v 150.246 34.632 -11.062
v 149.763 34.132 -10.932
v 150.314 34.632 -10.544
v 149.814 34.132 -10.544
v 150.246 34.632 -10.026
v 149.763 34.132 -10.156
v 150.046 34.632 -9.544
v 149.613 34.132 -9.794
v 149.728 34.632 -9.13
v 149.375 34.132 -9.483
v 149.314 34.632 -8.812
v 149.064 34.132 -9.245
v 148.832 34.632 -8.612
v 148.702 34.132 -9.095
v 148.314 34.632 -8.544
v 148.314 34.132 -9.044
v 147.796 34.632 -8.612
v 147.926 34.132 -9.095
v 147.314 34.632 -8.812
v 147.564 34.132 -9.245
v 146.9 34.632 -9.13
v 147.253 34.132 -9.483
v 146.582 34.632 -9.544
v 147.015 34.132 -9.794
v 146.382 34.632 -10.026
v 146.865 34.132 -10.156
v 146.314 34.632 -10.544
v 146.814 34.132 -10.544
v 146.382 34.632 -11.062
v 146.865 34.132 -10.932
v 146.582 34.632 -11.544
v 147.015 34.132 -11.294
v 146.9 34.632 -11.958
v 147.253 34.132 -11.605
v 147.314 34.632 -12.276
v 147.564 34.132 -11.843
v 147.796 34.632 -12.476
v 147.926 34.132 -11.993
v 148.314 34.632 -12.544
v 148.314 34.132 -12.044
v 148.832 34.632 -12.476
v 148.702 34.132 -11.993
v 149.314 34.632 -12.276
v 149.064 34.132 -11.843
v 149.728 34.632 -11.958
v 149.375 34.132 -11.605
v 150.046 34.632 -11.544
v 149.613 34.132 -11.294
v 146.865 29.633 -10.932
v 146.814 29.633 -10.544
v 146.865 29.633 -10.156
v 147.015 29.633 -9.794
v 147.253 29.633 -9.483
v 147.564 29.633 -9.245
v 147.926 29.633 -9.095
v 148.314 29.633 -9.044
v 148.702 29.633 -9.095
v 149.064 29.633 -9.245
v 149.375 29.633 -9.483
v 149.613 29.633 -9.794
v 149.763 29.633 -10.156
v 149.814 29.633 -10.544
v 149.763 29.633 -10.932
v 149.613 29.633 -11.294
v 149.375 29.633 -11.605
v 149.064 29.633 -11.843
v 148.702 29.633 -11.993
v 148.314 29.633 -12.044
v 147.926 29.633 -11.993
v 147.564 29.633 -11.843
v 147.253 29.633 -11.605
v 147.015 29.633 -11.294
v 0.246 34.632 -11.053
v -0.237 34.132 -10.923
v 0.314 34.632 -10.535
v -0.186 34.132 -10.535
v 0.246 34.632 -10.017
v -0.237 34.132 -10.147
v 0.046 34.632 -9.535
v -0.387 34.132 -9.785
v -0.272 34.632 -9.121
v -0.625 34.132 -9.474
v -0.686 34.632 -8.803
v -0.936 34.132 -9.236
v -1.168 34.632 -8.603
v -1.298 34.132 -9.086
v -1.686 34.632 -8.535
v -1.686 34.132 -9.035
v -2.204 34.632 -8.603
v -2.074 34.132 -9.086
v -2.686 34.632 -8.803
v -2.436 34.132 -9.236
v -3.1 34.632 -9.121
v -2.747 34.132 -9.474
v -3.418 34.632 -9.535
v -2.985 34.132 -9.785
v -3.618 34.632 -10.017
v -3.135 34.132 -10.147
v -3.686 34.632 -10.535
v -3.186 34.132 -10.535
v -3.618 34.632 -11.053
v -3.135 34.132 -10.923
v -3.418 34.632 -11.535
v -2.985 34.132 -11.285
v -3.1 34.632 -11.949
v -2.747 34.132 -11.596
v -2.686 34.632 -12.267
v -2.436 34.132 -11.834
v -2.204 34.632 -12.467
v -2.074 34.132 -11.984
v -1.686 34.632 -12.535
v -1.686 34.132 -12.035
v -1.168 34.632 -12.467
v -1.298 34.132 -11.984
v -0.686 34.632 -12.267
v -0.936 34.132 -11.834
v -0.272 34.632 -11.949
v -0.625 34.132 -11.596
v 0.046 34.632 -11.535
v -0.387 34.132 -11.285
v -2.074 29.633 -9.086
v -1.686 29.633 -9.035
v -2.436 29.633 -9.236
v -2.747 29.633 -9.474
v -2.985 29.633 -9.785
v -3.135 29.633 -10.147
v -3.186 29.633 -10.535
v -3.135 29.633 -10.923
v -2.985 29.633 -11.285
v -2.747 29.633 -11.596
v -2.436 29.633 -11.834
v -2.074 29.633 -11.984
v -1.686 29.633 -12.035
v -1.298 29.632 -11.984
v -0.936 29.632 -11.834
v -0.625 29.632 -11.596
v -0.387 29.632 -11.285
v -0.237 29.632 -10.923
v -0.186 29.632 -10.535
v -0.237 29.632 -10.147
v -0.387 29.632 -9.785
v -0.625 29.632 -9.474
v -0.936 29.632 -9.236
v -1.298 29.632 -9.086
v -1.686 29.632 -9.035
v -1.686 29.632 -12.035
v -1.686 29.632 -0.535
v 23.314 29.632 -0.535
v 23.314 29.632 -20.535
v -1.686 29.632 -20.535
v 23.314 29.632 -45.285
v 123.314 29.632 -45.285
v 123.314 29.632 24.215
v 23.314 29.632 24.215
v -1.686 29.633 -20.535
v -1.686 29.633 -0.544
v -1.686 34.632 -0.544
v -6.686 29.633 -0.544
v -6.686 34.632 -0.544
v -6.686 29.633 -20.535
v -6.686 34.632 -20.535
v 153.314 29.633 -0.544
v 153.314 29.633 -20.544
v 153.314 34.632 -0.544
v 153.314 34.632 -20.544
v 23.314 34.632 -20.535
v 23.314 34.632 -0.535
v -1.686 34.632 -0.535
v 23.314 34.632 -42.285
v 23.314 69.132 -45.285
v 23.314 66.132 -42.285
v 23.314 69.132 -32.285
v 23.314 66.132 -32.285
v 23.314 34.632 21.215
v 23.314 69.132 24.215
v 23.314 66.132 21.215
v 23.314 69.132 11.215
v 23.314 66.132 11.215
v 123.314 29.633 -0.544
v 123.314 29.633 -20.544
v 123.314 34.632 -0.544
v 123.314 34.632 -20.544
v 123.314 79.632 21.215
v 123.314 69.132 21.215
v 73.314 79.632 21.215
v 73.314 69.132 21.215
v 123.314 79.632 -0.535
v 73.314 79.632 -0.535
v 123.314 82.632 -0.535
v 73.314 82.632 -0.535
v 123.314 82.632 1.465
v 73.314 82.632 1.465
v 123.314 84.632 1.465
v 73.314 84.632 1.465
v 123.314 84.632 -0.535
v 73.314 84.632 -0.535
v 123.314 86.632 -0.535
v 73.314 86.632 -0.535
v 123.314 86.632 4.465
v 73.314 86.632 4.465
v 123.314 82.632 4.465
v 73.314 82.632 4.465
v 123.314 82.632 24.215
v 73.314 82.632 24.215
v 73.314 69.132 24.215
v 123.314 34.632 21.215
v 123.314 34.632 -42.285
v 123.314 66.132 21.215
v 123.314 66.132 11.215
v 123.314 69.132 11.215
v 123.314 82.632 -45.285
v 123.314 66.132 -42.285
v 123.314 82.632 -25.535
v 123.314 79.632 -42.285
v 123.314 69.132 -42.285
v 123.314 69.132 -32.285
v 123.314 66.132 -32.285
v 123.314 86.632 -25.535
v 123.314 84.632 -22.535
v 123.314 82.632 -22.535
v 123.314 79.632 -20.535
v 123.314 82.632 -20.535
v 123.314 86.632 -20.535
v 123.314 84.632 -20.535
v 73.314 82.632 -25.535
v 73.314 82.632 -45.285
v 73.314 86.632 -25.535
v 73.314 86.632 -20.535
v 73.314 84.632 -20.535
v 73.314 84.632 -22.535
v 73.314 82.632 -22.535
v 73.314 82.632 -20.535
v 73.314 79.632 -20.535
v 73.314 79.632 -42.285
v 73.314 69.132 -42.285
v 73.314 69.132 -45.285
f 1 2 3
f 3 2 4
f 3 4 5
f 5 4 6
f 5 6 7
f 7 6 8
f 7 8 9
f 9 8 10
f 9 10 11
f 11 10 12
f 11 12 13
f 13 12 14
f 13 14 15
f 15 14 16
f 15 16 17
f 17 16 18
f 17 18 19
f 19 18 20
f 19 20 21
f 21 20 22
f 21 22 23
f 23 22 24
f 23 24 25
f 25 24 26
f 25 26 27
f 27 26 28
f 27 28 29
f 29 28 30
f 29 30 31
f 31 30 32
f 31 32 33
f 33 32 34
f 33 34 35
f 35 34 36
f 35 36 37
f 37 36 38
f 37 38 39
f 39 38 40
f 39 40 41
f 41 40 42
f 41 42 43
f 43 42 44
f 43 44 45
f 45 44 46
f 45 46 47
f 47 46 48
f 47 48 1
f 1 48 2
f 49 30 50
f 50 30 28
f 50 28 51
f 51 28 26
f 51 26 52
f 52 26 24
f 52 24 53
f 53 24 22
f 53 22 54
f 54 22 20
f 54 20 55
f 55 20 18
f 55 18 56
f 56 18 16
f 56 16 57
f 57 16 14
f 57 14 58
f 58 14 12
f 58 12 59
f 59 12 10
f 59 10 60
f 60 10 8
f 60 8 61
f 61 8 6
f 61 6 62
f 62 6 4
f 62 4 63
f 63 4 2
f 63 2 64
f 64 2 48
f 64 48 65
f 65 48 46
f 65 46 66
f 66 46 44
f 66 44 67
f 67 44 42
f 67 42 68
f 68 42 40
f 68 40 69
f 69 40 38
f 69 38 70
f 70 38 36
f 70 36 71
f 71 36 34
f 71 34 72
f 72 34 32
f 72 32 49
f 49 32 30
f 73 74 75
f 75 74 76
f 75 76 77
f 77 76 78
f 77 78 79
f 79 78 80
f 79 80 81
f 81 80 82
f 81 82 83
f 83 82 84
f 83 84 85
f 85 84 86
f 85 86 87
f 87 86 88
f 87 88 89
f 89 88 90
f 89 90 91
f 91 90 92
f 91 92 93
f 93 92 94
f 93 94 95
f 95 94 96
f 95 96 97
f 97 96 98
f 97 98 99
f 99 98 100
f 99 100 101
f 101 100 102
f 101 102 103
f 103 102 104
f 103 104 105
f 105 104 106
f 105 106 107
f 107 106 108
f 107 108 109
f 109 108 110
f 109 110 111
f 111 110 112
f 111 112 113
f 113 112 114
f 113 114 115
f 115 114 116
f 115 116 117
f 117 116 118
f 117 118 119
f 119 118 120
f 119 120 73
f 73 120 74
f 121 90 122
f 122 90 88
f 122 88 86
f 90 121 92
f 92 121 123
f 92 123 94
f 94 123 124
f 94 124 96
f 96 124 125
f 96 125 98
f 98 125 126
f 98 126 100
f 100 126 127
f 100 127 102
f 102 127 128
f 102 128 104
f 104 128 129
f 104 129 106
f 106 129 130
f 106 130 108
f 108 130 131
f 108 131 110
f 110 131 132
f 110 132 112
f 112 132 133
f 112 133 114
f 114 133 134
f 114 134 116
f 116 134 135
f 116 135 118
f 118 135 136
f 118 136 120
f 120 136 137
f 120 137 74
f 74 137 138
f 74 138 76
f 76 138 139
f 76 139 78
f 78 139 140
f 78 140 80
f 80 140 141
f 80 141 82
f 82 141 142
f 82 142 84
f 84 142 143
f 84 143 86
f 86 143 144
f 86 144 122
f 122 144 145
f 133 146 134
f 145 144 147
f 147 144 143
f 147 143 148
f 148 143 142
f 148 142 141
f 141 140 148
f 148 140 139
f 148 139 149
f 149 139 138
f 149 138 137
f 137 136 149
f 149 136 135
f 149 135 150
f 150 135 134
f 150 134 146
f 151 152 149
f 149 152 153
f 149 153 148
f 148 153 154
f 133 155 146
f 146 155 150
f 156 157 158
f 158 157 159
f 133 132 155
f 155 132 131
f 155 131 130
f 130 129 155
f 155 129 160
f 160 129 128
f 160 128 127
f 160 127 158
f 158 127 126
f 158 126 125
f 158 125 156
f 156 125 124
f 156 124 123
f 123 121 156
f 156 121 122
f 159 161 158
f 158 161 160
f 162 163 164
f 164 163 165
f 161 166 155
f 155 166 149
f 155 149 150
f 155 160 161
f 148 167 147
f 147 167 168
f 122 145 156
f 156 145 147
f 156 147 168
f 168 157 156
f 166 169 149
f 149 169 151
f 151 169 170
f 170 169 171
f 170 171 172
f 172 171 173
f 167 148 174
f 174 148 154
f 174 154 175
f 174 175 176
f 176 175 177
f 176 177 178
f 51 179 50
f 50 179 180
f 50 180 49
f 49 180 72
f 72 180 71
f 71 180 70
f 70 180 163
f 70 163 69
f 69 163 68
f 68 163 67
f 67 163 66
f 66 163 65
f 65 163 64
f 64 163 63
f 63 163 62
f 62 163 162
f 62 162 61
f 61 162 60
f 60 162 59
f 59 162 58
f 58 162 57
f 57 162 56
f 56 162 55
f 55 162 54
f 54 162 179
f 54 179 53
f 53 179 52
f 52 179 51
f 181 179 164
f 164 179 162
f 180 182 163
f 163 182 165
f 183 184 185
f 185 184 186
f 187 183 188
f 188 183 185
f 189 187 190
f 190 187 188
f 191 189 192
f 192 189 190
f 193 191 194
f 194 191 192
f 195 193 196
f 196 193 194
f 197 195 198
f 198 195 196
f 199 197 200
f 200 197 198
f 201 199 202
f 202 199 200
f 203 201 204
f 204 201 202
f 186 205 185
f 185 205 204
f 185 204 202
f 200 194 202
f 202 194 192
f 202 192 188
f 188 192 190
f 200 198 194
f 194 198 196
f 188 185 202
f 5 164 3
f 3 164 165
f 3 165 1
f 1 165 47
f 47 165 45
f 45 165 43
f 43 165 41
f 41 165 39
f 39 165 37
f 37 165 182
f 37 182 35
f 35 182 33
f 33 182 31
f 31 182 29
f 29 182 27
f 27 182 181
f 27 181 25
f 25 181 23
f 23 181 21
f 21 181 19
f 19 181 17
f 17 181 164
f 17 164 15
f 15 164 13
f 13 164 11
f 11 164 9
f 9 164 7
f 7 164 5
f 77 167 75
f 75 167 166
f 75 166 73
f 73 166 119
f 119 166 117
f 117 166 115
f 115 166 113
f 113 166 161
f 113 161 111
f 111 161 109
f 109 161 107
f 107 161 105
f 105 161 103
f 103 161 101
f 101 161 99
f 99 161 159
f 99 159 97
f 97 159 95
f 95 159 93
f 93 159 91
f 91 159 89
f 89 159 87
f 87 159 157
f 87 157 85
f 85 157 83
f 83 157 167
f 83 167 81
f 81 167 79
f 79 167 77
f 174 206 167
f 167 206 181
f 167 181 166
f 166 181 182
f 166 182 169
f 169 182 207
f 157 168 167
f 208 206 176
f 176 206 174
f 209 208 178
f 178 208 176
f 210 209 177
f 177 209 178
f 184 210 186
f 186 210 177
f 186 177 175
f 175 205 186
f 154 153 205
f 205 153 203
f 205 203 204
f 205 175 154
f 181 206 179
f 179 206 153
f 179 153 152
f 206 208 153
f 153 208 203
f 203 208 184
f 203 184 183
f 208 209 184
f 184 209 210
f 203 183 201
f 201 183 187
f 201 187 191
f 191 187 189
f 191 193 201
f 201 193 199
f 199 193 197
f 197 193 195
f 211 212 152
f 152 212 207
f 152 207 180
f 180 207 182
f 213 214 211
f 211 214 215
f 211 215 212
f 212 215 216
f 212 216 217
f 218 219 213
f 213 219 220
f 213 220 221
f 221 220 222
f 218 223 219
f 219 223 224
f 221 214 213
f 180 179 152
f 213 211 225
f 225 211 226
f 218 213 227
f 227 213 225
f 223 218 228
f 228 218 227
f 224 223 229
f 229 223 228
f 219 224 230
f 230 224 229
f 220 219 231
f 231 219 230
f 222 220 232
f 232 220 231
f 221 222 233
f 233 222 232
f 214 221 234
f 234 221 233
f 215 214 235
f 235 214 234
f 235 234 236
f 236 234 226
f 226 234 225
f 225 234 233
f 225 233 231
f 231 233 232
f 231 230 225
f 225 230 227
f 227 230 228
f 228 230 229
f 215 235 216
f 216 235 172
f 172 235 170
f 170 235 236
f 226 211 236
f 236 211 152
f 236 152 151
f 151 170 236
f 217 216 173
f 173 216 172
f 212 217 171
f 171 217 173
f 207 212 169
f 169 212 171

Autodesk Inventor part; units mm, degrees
ref_plane "YZ Plane" through (0, 0, 0) normal (1, 0, 0) x (0, 1, 0)
ref_plane "Piano di lavoro9" through (123.3139, -0.0528, 92.5382) normal (1, 0, 0) x (0, 0, -1)
sketch "Schizzo5" plane through (123.3139, -0.0528, 92.5382) normal (1, 0, 0) x (0, 0, -1)
  line L0 (71.3231, 66.1847) -> (134.8231, 66.1847)
  line L1 (134.8231, 66.1847) -> (134.8231, 34.6847)
  line L2 (134.8231, 34.6847) -> (71.3231, 34.6847)
  line L3 (71.3231, 34.6847) -> (71.3231, 66.1847)
  line L4 (71.3231, 34.6847) -> (81.3231, 34.6847)
  line L5 (81.3231, 34.6847) -> (81.3231, 29.6847)
  line L6 (81.3231, 29.6847) -> (71.3231, 29.6847)
  line L7 (134.8231, 34.6847) -> (124.8231, 34.6847)
  line L8 (124.8231, 34.6847) -> (124.8231, 29.6847)
  line L9 (124.8231, 29.6847) -> (134.8231, 29.6847)
  line L10 (71.3231, 66.1847) -> (81.3231, 66.1847)
  line L11 (81.3231, 66.1847) -> (81.3231, 69.1847)
  line L12 (81.3231, 69.1847) -> (71.3231, 69.1847)
  line L13 (134.8231, 66.1847) -> (124.8231, 66.1847)
  line L14 (124.8231, 66.1847) -> (124.8231, 69.1847)
  line L15 (124.8231, 69.1847) -> (134.8231, 69.1847)
  line L16 (71.3231, 69.1847) -> (68.3231, 69.1847)
  line L17 (68.3231, 69.1847) -> (68.3231, 29.6847)
  line L18 (68.3231, 29.6847) -> (71.3231, 29.6847)
  line L19 (71.3231, 34.6847) -> (71.3231, 66.1847)
  line L20 (134.8231, 69.1847) -> (137.8231, 69.1847)
  line L21 (137.8231, 69.1847) -> (137.8231, 29.6847)
  line L22 (137.8231, 29.6847) -> (134.8231, 29.6847)
  point P0 (92.5382, 0.0528)
  dimension "d18" = 63.5
  dimension "d19" = 31.5
  dimension "d20" = 10
  dimension "d21" = 5
  dimension "d22" = 10
  dimension "d23" = 5
  dimension "d24" = 10
  dimension "d25" = 3
  dimension "d26" = 10
  dimension "d27" = 3
  dimension "d28" = 3
  dimension "d29" = 3
extrude "Estrusione3" add sketch "Schizzo5" against normal blind 100 contours L3 L2 L5 L6 L18 L17 L16 L12 L11 L0 | L14 L15 L20 L21 L22 L9 L8 L2 L1 L0
ref_plane "Piano di lavoro11" through (123.3139, -0.0528, 92.5382) normal (1, 0, 0) x (0, 0, -1)
sketch "Schizzo6" plane through (123.3139, -0.0528, 92.5382) normal (1, 0, 0) x (0, 0, -1)
  line L0 (71.3231, 66.1847) -> (81.3231, 66.1847) projected
  line L1 (81.3231, 34.6847) -> (71.3231, 34.6847) projected
  line L2 (81.3231, 29.6847) -> (81.3231, 34.6847) projected
  line L3 (134.8231, 66.1847) -> (134.8231, 34.6847) projected
  line L4 (71.3231, 34.6847) -> (71.3231, 66.1847) projected
  line L5 (68.3231, 99.6847) -> (137.155, 99.6847)
  line L6 (124.8231, 69.1847) -> (137.8231, 69.1847) projected
  line L7 (137.8231, 69.1847) -> (134.8231, 69.1847)
  line L8 (134.8231, 69.1847) -> (134.8231, 79.6847)
  line L9 (137.8231, 79.6847) -> (137.8231, 69.1847)
  line L10 (71.3231, 69.1847) -> (71.3231, 79.6847)
  line L11 (68.3231, 79.6847) -> (68.3231, 69.1847)
  line L12 (115.0731, 79.6847) -> (134.8231, 79.6847)
  line L13 (137.8231, 79.6847) -> (137.8231, 82.6847)
  line L14 (137.8231, 82.6847) -> (118.0731, 82.6847)
  line L15 (91.0731, 79.6847) -> (71.3231, 79.6847)
  line L16 (68.3231, 79.6847) -> (68.3231, 82.6847)
  line L17 (68.3231, 82.6847) -> (88.0731, 82.6847)
  line L18 (91.0731, 82.6847) -> (93.0731, 82.6847)
  line L19 (93.0731, 82.6847) -> (93.0731, 79.6847)
  line L20 (93.0731, 79.6847) -> (91.0731, 79.6847)
  line L21 (115.0731, 82.6847) -> (113.0731, 82.6847)
  line L22 (113.0731, 82.6847) -> (113.0731, 79.6847)
  line L23 (113.0731, 79.6847) -> (115.0731, 79.6847)
  line L24 (91.0731, 82.6847) -> (91.0731, 84.6847)
  line L25 (88.0731, 82.6847) -> (88.0731, 85.6847)
  line L26 (93.0731, 85.6847) -> (93.0731, 84.6847)
  line L27 (93.0731, 84.6847) -> (91.0731, 84.6847)
  line L28 (113.0731, 84.6847) -> (115.0731, 84.6847)
  line L29 (93.0731, 85.6847) -> (93.0731, 86.6847)
  line L30 (88.0731, 85.6847) -> (88.0731, 86.6847)
  line L31 (88.0731, 86.6847) -> (93.0731, 86.6847)
  line L32 (113.0731, 84.6847) -> (113.0731, 86.6847)
  line L33 (113.0731, 86.6847) -> (118.0731, 86.6847)
  line L34 (118.0731, 86.6847) -> (118.0731, 82.6847)
  line L35 (115.0731, 84.6847) -> (115.0731, 82.6847)
  line L36 (68.3231, 69.1847) -> (81.3231, 69.1847) projected
  line L37 (71.3231, 69.1847) -> (68.3231, 69.1847)
  point P0 (92.5382, 0.0528)
  point P1 (68.3231, 29.6847)
  dimension "d32" = 70
  dimension "d33" = 31.5
  dimension "d35" = 63.5
  dimension "d37" = 3
  dimension "d38" = 10.5
  dimension "d39" = 3
  dimension "d40" = 10.5
  dimension "d43" = 3
  dimension "d44" = 3
  dimension "d45" = 2
  dimension "d46" = 2
  dimension "d47" = 2
  dimension "d50" = 2
  dimension "d54" = 2
  dimension "d55" = 4
  dimension "d56" = 5
  dimension "d57" = 2
  dimension "d58" = 2
  dimension "d59" = 5
extrude "Estrusione4" add sketch "Schizzo6" against normal blind 50
sketch "Schizzo7" plane through (123.3139, 29.6319, -32.2849) normal (0, 0, 1) x (1, 0, 0)
  line L0 (0, 5) -> (0, 0) projected
  line L1 (0, 5) -> (-100, 5) projected
  line L2 (-100, 0) -> (-100, 5) projected
  line L3 (0, 0) -> (-100, 0) projected
  point P0 (-123.3139, -29.6319)
extrude "Estrusione5" add sketch "Schizzo7" along normal blind 47.25
sketch "Schizzo8" plane through (123.3139, -0.0528, 92.5382) normal (1, 0, 0) x (0, 0, -1)
  line L0 (71.3231, 66.1847) -> (71.3231, 34.6847) projected
  line L1 (71.3231, 34.6847) -> (65.0934, 34.6847)
  line L2 (134.8231, 34.6847) -> (141.848, 34.6847)
  line L3 (137.8231, 29.6847) -> (137.8231, 82.6847) projected
  line L4 (68.3231, 29.6847) -> (68.3231, 69.1847) projected
  line L5 (137.8231, 34.6847) -> (68.3231, 34.6847)
  line L6 (68.3231, 34.6847) -> (68.3231, 29.6797)
  line L7 (137.8231, 29.6797) -> (137.8231, 34.6847)
  line L8 (68.3231, 29.6847) -> (137.86, 29.6847)
  line L9 (93.0823, 34.6854) -> (113.0823, 34.6854)
  line L10 (113.0823, 34.6854) -> (113.0823, 29.6854)
  line L11 (113.0823, 29.6854) -> (93.0823, 29.6854)
  line L12 (93.0823, 29.6854) -> (93.0823, 34.6854)
  line L13 (113.0823, 34.6854) -> (93.0823, 34.6854)
  line L14 (93.0823, 34.6854) -> (93.0823, 29.6854)
  line L15 (93.0823, 29.6854) -> (113.0823, 29.6854)
  line L16 (113.0823, 29.6854) -> (113.0823, 34.6854)
  point P0 (92.5382, 0.0528)
  point P1 (103.0823, 32.1854)
  point P2 (103.0823, 32.1854)
  point P3 (113.0823, 34.6847)
  point P4 (93.0823, 34.6847)
  dimension "d82" = 20
  dimension "d83" = 5
extrude "Estrusione6" add sketch "Schizzo8" along normal blind 25 contours L5 L10 L8 L12
sketch "Schizzo9" plane through (23.3139, -0.0528, 92.5382) normal (-1, 0, 0) x (0, 0, 1)
  line L0 (-71.3231, 66.1847) -> (-71.3231, 34.6847) projected
  line L1 (-71.3231, 34.6847) -> (-67.9708, 34.6847)
  line L2 (-68.3231, 82.6847) -> (-68.3231, 29.6847) projected
  line L3 (-68.3231, 29.6847) -> (-137.8231, 29.6847) projected
  line L4 (-68.3231, 34.6847) -> (-137.8231, 34.6847)
  line L5 (-137.8231, 34.6847) -> (-137.8231, 29.6847)
  line L6 (-137.8231, 29.6847) -> (-68.3231, 29.6847)
  line L7 (-68.3231, 29.6847) -> (-68.3231, 34.6847)
  line L8 (-113.0731, 34.6847) -> (-93.0731, 34.6847)
  line L9 (-93.0731, 34.6847) -> (-93.0731, 29.6847)
  line L10 (-93.0731, 29.6847) -> (-113.0731, 29.6847)
  line L11 (-113.0731, 29.6847) -> (-113.0731, 34.6847)
  point P0 (-92.5382, 0.0528)
  point P1 (-103.0731, 32.1847)
  point P2 (-103.0731, 32.1847)
  dimension "d86" = 20
  dimension "d87" = 5
extrude "Estrusione7" add sketch "Schizzo9" along normal blind 25 contours L9 L3 L11 L4
sketch "Schizzo10" plane through (23.3139, 34.6319, 21.2151) normal (0, 1, 0) x (1, 0, 0)
  line L0 (-25, 21.75) -> (-25, 41.75) projected
  line L1 (-25, 31.75) -> (-20, 31.75)
  circle A0 centre (-20, 31.75) radius 0.5
  line L2 (125, 41.7592) -> (125, 21.7592) projected
  line L3 (125, 31.7592) -> (120, 31.7592)
  circle A1 centre (120, 31.7592) radius 0.5
  point P0 (-23.3139, 21.2151)
  dimension "d90" = 5
  dimension "d91" = 1
  dimension "d92" = 5
  dimension "d93" = 1
sketch "Schizzo11" plane through (148.3139, -0.0528, 92.5382) normal (1, 0, 0) x (0, 0, -1)
  line L0 (113.0823, 34.6847) -> (93.0823, 34.6847) projected
  line L1 (113.0823, 29.6854) -> (113.0823, 34.6847) projected
  line L2 (93.0823, 34.6847) -> (113.0823, 34.6847)
  line L3 (113.0823, 34.6847) -> (113.0823, 29.6854)
  line L4 (113.0823, 29.6854) -> (93.0823, 29.6854)
  line L5 (93.0823, 29.6854) -> (93.0823, 34.6847)
  point P0 (92.5382, 0.0528)
extrude "Estrusione8" add sketch "Schizzo11" along normal blind 5
sketch "Schizzo12" plane through (-1.6861, -0.0528, 92.5382) normal (-1, 0, 0) x (0, 0, 1)
  line L0 (-113.0731, 34.6847) -> (-134.8231, 34.6847) projected
  line L1 (-113.0823, 29.6854) -> (-93.0823, 29.6854) projected
  line L2 (-113.0731, 34.6847) -> (-93.0823, 34.6847)
  line L3 (-93.0823, 34.6847) -> (-93.0823, 29.6854)
  line L4 (-93.0823, 29.6854) -> (-113.0731, 29.6854)
  line L5 (-113.0731, 29.6854) -> (-113.0731, 34.6847)
  point P0 (-92.5382, 0.0528)
extrude "Estrusione9" add sketch "Schizzo12" along normal blind 5
hole "Foro3" at (-1.6861, 34.6319, -10.5349) direction (0, -1, 0) diameter 3 end through all countersink diameter 4 countersink angle 90
sketch "Schizzo13" plane through (23.3139, 34.6319, 21.2151) normal (0, 1, 0) x (1, 0, 0)
  line L0 (130, 41.7592) -> (130, 21.7592) projected
  line L1 (130, 31.7592) -> (125, 31.7592)
  point P0 (-23.3139, 21.2151)
  dimension "d133" = 5
hole "Foro4" at (148.3139, 34.6319, -10.5442) direction (0, -1, 0) diameter 3 end through all countersink diameter 4 countersink angle 90
properties part number "pignat_2_Stampa 3D"
